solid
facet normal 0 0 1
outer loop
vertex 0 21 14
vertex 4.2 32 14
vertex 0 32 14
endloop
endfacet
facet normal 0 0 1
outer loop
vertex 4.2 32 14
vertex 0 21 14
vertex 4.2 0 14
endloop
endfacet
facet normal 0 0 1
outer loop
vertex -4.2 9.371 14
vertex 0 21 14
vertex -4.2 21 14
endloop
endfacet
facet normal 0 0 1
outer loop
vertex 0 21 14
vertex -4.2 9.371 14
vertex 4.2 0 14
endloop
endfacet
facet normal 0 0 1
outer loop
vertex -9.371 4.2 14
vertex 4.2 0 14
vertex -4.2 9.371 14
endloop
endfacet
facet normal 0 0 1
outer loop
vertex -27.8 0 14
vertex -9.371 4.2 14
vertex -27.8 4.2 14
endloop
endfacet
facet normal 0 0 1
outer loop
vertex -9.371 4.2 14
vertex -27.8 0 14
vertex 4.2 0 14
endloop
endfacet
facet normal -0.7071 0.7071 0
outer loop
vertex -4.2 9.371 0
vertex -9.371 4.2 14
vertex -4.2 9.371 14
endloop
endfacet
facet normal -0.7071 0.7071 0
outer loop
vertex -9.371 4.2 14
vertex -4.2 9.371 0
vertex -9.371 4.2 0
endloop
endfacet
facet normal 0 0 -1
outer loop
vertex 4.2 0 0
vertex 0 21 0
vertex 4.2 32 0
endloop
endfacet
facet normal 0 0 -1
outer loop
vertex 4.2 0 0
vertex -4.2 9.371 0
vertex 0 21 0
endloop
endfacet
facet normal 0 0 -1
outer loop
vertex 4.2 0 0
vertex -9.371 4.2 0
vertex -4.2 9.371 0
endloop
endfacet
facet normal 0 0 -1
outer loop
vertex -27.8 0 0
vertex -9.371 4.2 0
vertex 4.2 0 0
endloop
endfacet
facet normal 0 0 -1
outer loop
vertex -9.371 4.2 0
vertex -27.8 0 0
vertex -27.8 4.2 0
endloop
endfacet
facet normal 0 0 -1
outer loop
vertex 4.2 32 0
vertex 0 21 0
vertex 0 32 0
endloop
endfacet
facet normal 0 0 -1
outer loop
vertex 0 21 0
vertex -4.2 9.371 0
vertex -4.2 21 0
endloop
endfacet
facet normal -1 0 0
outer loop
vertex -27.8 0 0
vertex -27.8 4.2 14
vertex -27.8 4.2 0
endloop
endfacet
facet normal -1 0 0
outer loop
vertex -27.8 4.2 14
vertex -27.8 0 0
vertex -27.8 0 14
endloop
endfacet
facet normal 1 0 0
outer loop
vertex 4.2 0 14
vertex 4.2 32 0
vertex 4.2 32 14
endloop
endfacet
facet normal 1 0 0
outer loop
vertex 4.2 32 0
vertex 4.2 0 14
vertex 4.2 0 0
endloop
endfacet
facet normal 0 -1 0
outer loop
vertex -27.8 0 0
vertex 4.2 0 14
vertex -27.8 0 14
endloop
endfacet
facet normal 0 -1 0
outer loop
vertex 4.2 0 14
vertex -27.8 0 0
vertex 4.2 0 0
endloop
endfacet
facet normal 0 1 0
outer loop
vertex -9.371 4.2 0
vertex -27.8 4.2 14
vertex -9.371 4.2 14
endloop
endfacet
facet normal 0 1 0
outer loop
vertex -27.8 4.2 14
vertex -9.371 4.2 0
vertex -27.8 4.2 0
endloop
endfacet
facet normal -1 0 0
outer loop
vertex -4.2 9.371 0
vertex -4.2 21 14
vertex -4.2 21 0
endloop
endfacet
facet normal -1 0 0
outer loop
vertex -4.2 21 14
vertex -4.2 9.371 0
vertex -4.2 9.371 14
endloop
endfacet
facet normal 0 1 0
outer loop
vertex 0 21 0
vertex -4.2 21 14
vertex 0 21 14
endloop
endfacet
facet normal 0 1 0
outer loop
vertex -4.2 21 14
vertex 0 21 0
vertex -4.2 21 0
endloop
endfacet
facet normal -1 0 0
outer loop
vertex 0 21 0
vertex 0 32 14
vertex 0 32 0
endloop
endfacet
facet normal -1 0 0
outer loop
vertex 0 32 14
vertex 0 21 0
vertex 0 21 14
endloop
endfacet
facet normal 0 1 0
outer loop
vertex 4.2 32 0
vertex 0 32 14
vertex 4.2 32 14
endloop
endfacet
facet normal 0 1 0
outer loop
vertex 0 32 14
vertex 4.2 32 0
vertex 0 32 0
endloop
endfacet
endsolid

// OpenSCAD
union() {
    largura = 14; //mm
    altura = 32; //mm
    comprimento = 32; //mm
    espessura = 4.2; //mm
    
    //translate([0, 0, 0]);
    //cylinder(h=4, d=1, center=true);
    //rotate(60) color("red");

    color("red")
    translate([-6, 0.5, 0])
    rotate(45)
    cube([8, 5, largura]);
    
    color("green")
    translate([-(comprimento-espessura), 0, 0])
    cube([comprimento, espessura, largura]);

    color("blue")
    translate([-espessura, 0, 0])
    cube([espessura+1, 21, largura]);
    
    cube([espessura, comprimento, largura]);
}
